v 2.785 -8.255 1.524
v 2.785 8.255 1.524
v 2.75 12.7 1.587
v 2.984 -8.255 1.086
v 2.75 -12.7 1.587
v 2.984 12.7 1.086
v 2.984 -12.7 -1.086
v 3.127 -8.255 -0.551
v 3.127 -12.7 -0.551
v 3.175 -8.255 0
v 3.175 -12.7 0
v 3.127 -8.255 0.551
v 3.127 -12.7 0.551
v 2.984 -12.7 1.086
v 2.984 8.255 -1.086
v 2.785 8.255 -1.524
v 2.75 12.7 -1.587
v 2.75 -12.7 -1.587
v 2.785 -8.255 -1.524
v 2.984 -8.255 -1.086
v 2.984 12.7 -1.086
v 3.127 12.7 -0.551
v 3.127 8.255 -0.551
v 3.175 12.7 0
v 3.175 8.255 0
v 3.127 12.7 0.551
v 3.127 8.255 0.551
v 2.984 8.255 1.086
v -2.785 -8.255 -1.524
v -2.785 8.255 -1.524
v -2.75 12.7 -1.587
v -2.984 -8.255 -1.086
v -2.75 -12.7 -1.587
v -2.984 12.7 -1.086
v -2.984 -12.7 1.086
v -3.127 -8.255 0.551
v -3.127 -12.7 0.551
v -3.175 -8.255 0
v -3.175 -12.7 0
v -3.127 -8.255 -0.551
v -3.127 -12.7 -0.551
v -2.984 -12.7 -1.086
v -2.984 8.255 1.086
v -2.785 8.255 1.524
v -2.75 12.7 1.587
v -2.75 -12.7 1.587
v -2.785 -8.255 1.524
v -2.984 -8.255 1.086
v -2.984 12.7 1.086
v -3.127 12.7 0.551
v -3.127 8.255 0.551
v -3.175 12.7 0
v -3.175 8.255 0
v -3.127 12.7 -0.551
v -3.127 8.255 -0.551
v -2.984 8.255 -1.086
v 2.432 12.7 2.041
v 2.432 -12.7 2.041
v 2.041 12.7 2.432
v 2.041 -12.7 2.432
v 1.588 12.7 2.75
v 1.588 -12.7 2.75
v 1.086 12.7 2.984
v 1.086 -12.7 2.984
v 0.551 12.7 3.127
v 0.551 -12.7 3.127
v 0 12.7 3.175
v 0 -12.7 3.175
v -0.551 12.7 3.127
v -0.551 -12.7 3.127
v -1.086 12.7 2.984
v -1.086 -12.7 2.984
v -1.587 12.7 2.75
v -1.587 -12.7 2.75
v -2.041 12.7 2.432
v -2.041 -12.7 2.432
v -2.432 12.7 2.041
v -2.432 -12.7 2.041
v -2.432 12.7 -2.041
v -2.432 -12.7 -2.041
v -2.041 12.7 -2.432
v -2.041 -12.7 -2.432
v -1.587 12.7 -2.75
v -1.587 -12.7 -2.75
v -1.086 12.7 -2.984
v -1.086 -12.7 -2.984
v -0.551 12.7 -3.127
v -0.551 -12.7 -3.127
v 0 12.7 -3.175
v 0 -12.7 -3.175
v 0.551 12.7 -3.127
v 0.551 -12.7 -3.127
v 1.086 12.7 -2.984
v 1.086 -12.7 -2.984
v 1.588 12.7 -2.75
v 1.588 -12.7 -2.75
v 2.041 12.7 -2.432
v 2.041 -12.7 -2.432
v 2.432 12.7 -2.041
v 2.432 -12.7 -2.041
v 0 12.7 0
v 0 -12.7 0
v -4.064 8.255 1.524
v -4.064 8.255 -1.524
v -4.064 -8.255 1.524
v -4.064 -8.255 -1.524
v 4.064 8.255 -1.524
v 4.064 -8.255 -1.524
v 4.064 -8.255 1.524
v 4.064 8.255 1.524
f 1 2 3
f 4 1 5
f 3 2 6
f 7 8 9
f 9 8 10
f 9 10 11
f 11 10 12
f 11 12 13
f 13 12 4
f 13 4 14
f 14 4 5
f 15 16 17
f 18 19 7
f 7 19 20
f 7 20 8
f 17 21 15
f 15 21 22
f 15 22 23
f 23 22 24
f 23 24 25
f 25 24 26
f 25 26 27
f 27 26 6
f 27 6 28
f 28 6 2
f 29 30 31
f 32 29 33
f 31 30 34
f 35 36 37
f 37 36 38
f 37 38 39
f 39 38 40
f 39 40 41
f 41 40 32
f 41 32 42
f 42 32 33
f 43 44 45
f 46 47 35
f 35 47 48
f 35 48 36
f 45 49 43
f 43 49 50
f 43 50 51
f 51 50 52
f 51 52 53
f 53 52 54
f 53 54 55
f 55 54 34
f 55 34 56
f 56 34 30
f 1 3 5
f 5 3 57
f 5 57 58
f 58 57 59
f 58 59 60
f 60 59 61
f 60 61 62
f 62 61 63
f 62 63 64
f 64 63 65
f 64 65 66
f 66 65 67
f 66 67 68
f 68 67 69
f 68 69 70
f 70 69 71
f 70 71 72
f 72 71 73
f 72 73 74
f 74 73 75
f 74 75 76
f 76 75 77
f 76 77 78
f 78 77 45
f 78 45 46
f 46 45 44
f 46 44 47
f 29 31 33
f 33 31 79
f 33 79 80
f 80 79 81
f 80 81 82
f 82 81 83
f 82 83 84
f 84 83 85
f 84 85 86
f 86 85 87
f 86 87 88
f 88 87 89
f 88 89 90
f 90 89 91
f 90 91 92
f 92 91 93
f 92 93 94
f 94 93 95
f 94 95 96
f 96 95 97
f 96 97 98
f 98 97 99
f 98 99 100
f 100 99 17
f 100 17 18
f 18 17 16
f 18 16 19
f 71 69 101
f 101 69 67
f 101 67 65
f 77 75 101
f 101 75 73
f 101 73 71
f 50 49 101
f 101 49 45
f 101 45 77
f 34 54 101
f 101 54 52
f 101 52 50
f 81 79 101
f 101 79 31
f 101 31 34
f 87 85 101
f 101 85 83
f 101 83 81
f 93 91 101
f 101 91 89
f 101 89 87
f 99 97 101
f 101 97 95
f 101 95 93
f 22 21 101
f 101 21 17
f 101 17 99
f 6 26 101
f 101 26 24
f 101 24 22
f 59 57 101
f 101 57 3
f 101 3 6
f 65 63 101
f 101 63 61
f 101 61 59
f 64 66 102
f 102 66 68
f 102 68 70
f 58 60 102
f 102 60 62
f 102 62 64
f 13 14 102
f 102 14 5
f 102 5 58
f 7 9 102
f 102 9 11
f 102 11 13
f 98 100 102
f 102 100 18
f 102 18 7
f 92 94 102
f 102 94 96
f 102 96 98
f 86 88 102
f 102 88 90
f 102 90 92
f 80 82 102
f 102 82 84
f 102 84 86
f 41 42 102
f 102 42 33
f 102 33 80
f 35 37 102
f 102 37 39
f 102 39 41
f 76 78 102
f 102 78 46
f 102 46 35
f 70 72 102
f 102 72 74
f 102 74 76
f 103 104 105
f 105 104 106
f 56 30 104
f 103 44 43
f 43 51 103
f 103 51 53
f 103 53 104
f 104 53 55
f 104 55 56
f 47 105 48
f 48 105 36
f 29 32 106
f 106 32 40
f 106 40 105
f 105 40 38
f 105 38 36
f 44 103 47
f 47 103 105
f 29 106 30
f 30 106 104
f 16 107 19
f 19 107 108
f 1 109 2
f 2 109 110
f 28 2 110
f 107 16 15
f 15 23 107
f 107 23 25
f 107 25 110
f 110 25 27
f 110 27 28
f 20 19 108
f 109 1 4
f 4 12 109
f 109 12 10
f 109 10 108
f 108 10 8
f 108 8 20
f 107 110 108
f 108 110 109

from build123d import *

# Parameters (mm, degrees)
SKETCH1_R           = 3.175
BOSS_EXTRUDE1_DEPTH = 12.7
SKETCH2_W           = 8.128
SKETCH2_H           = 3.048
BOSS_EXTRUDE2_DEPTH = 8.255


with BuildPart() as part:
    # Sketch1 → Boss-Extrude1 (new body, symmetric)
    with BuildSketch(Plane(origin=(0, 0, 0), x_dir=(1, 0, 0), z_dir=(0, 1, 0))):
        Circle(SKETCH1_R)
    extrude(amount=BOSS_EXTRUDE1_DEPTH, both=True)

    # Sketch2 → Boss-Extrude2 (add, symmetric)
    with BuildSketch(Plane(origin=(0, 0, 0), x_dir=(1, 0, 0), z_dir=(0, 1, 0))):
        Rectangle(SKETCH2_W, SKETCH2_H)
    extrude(amount=BOSS_EXTRUDE2_DEPTH, both=True)


solid = part.part
